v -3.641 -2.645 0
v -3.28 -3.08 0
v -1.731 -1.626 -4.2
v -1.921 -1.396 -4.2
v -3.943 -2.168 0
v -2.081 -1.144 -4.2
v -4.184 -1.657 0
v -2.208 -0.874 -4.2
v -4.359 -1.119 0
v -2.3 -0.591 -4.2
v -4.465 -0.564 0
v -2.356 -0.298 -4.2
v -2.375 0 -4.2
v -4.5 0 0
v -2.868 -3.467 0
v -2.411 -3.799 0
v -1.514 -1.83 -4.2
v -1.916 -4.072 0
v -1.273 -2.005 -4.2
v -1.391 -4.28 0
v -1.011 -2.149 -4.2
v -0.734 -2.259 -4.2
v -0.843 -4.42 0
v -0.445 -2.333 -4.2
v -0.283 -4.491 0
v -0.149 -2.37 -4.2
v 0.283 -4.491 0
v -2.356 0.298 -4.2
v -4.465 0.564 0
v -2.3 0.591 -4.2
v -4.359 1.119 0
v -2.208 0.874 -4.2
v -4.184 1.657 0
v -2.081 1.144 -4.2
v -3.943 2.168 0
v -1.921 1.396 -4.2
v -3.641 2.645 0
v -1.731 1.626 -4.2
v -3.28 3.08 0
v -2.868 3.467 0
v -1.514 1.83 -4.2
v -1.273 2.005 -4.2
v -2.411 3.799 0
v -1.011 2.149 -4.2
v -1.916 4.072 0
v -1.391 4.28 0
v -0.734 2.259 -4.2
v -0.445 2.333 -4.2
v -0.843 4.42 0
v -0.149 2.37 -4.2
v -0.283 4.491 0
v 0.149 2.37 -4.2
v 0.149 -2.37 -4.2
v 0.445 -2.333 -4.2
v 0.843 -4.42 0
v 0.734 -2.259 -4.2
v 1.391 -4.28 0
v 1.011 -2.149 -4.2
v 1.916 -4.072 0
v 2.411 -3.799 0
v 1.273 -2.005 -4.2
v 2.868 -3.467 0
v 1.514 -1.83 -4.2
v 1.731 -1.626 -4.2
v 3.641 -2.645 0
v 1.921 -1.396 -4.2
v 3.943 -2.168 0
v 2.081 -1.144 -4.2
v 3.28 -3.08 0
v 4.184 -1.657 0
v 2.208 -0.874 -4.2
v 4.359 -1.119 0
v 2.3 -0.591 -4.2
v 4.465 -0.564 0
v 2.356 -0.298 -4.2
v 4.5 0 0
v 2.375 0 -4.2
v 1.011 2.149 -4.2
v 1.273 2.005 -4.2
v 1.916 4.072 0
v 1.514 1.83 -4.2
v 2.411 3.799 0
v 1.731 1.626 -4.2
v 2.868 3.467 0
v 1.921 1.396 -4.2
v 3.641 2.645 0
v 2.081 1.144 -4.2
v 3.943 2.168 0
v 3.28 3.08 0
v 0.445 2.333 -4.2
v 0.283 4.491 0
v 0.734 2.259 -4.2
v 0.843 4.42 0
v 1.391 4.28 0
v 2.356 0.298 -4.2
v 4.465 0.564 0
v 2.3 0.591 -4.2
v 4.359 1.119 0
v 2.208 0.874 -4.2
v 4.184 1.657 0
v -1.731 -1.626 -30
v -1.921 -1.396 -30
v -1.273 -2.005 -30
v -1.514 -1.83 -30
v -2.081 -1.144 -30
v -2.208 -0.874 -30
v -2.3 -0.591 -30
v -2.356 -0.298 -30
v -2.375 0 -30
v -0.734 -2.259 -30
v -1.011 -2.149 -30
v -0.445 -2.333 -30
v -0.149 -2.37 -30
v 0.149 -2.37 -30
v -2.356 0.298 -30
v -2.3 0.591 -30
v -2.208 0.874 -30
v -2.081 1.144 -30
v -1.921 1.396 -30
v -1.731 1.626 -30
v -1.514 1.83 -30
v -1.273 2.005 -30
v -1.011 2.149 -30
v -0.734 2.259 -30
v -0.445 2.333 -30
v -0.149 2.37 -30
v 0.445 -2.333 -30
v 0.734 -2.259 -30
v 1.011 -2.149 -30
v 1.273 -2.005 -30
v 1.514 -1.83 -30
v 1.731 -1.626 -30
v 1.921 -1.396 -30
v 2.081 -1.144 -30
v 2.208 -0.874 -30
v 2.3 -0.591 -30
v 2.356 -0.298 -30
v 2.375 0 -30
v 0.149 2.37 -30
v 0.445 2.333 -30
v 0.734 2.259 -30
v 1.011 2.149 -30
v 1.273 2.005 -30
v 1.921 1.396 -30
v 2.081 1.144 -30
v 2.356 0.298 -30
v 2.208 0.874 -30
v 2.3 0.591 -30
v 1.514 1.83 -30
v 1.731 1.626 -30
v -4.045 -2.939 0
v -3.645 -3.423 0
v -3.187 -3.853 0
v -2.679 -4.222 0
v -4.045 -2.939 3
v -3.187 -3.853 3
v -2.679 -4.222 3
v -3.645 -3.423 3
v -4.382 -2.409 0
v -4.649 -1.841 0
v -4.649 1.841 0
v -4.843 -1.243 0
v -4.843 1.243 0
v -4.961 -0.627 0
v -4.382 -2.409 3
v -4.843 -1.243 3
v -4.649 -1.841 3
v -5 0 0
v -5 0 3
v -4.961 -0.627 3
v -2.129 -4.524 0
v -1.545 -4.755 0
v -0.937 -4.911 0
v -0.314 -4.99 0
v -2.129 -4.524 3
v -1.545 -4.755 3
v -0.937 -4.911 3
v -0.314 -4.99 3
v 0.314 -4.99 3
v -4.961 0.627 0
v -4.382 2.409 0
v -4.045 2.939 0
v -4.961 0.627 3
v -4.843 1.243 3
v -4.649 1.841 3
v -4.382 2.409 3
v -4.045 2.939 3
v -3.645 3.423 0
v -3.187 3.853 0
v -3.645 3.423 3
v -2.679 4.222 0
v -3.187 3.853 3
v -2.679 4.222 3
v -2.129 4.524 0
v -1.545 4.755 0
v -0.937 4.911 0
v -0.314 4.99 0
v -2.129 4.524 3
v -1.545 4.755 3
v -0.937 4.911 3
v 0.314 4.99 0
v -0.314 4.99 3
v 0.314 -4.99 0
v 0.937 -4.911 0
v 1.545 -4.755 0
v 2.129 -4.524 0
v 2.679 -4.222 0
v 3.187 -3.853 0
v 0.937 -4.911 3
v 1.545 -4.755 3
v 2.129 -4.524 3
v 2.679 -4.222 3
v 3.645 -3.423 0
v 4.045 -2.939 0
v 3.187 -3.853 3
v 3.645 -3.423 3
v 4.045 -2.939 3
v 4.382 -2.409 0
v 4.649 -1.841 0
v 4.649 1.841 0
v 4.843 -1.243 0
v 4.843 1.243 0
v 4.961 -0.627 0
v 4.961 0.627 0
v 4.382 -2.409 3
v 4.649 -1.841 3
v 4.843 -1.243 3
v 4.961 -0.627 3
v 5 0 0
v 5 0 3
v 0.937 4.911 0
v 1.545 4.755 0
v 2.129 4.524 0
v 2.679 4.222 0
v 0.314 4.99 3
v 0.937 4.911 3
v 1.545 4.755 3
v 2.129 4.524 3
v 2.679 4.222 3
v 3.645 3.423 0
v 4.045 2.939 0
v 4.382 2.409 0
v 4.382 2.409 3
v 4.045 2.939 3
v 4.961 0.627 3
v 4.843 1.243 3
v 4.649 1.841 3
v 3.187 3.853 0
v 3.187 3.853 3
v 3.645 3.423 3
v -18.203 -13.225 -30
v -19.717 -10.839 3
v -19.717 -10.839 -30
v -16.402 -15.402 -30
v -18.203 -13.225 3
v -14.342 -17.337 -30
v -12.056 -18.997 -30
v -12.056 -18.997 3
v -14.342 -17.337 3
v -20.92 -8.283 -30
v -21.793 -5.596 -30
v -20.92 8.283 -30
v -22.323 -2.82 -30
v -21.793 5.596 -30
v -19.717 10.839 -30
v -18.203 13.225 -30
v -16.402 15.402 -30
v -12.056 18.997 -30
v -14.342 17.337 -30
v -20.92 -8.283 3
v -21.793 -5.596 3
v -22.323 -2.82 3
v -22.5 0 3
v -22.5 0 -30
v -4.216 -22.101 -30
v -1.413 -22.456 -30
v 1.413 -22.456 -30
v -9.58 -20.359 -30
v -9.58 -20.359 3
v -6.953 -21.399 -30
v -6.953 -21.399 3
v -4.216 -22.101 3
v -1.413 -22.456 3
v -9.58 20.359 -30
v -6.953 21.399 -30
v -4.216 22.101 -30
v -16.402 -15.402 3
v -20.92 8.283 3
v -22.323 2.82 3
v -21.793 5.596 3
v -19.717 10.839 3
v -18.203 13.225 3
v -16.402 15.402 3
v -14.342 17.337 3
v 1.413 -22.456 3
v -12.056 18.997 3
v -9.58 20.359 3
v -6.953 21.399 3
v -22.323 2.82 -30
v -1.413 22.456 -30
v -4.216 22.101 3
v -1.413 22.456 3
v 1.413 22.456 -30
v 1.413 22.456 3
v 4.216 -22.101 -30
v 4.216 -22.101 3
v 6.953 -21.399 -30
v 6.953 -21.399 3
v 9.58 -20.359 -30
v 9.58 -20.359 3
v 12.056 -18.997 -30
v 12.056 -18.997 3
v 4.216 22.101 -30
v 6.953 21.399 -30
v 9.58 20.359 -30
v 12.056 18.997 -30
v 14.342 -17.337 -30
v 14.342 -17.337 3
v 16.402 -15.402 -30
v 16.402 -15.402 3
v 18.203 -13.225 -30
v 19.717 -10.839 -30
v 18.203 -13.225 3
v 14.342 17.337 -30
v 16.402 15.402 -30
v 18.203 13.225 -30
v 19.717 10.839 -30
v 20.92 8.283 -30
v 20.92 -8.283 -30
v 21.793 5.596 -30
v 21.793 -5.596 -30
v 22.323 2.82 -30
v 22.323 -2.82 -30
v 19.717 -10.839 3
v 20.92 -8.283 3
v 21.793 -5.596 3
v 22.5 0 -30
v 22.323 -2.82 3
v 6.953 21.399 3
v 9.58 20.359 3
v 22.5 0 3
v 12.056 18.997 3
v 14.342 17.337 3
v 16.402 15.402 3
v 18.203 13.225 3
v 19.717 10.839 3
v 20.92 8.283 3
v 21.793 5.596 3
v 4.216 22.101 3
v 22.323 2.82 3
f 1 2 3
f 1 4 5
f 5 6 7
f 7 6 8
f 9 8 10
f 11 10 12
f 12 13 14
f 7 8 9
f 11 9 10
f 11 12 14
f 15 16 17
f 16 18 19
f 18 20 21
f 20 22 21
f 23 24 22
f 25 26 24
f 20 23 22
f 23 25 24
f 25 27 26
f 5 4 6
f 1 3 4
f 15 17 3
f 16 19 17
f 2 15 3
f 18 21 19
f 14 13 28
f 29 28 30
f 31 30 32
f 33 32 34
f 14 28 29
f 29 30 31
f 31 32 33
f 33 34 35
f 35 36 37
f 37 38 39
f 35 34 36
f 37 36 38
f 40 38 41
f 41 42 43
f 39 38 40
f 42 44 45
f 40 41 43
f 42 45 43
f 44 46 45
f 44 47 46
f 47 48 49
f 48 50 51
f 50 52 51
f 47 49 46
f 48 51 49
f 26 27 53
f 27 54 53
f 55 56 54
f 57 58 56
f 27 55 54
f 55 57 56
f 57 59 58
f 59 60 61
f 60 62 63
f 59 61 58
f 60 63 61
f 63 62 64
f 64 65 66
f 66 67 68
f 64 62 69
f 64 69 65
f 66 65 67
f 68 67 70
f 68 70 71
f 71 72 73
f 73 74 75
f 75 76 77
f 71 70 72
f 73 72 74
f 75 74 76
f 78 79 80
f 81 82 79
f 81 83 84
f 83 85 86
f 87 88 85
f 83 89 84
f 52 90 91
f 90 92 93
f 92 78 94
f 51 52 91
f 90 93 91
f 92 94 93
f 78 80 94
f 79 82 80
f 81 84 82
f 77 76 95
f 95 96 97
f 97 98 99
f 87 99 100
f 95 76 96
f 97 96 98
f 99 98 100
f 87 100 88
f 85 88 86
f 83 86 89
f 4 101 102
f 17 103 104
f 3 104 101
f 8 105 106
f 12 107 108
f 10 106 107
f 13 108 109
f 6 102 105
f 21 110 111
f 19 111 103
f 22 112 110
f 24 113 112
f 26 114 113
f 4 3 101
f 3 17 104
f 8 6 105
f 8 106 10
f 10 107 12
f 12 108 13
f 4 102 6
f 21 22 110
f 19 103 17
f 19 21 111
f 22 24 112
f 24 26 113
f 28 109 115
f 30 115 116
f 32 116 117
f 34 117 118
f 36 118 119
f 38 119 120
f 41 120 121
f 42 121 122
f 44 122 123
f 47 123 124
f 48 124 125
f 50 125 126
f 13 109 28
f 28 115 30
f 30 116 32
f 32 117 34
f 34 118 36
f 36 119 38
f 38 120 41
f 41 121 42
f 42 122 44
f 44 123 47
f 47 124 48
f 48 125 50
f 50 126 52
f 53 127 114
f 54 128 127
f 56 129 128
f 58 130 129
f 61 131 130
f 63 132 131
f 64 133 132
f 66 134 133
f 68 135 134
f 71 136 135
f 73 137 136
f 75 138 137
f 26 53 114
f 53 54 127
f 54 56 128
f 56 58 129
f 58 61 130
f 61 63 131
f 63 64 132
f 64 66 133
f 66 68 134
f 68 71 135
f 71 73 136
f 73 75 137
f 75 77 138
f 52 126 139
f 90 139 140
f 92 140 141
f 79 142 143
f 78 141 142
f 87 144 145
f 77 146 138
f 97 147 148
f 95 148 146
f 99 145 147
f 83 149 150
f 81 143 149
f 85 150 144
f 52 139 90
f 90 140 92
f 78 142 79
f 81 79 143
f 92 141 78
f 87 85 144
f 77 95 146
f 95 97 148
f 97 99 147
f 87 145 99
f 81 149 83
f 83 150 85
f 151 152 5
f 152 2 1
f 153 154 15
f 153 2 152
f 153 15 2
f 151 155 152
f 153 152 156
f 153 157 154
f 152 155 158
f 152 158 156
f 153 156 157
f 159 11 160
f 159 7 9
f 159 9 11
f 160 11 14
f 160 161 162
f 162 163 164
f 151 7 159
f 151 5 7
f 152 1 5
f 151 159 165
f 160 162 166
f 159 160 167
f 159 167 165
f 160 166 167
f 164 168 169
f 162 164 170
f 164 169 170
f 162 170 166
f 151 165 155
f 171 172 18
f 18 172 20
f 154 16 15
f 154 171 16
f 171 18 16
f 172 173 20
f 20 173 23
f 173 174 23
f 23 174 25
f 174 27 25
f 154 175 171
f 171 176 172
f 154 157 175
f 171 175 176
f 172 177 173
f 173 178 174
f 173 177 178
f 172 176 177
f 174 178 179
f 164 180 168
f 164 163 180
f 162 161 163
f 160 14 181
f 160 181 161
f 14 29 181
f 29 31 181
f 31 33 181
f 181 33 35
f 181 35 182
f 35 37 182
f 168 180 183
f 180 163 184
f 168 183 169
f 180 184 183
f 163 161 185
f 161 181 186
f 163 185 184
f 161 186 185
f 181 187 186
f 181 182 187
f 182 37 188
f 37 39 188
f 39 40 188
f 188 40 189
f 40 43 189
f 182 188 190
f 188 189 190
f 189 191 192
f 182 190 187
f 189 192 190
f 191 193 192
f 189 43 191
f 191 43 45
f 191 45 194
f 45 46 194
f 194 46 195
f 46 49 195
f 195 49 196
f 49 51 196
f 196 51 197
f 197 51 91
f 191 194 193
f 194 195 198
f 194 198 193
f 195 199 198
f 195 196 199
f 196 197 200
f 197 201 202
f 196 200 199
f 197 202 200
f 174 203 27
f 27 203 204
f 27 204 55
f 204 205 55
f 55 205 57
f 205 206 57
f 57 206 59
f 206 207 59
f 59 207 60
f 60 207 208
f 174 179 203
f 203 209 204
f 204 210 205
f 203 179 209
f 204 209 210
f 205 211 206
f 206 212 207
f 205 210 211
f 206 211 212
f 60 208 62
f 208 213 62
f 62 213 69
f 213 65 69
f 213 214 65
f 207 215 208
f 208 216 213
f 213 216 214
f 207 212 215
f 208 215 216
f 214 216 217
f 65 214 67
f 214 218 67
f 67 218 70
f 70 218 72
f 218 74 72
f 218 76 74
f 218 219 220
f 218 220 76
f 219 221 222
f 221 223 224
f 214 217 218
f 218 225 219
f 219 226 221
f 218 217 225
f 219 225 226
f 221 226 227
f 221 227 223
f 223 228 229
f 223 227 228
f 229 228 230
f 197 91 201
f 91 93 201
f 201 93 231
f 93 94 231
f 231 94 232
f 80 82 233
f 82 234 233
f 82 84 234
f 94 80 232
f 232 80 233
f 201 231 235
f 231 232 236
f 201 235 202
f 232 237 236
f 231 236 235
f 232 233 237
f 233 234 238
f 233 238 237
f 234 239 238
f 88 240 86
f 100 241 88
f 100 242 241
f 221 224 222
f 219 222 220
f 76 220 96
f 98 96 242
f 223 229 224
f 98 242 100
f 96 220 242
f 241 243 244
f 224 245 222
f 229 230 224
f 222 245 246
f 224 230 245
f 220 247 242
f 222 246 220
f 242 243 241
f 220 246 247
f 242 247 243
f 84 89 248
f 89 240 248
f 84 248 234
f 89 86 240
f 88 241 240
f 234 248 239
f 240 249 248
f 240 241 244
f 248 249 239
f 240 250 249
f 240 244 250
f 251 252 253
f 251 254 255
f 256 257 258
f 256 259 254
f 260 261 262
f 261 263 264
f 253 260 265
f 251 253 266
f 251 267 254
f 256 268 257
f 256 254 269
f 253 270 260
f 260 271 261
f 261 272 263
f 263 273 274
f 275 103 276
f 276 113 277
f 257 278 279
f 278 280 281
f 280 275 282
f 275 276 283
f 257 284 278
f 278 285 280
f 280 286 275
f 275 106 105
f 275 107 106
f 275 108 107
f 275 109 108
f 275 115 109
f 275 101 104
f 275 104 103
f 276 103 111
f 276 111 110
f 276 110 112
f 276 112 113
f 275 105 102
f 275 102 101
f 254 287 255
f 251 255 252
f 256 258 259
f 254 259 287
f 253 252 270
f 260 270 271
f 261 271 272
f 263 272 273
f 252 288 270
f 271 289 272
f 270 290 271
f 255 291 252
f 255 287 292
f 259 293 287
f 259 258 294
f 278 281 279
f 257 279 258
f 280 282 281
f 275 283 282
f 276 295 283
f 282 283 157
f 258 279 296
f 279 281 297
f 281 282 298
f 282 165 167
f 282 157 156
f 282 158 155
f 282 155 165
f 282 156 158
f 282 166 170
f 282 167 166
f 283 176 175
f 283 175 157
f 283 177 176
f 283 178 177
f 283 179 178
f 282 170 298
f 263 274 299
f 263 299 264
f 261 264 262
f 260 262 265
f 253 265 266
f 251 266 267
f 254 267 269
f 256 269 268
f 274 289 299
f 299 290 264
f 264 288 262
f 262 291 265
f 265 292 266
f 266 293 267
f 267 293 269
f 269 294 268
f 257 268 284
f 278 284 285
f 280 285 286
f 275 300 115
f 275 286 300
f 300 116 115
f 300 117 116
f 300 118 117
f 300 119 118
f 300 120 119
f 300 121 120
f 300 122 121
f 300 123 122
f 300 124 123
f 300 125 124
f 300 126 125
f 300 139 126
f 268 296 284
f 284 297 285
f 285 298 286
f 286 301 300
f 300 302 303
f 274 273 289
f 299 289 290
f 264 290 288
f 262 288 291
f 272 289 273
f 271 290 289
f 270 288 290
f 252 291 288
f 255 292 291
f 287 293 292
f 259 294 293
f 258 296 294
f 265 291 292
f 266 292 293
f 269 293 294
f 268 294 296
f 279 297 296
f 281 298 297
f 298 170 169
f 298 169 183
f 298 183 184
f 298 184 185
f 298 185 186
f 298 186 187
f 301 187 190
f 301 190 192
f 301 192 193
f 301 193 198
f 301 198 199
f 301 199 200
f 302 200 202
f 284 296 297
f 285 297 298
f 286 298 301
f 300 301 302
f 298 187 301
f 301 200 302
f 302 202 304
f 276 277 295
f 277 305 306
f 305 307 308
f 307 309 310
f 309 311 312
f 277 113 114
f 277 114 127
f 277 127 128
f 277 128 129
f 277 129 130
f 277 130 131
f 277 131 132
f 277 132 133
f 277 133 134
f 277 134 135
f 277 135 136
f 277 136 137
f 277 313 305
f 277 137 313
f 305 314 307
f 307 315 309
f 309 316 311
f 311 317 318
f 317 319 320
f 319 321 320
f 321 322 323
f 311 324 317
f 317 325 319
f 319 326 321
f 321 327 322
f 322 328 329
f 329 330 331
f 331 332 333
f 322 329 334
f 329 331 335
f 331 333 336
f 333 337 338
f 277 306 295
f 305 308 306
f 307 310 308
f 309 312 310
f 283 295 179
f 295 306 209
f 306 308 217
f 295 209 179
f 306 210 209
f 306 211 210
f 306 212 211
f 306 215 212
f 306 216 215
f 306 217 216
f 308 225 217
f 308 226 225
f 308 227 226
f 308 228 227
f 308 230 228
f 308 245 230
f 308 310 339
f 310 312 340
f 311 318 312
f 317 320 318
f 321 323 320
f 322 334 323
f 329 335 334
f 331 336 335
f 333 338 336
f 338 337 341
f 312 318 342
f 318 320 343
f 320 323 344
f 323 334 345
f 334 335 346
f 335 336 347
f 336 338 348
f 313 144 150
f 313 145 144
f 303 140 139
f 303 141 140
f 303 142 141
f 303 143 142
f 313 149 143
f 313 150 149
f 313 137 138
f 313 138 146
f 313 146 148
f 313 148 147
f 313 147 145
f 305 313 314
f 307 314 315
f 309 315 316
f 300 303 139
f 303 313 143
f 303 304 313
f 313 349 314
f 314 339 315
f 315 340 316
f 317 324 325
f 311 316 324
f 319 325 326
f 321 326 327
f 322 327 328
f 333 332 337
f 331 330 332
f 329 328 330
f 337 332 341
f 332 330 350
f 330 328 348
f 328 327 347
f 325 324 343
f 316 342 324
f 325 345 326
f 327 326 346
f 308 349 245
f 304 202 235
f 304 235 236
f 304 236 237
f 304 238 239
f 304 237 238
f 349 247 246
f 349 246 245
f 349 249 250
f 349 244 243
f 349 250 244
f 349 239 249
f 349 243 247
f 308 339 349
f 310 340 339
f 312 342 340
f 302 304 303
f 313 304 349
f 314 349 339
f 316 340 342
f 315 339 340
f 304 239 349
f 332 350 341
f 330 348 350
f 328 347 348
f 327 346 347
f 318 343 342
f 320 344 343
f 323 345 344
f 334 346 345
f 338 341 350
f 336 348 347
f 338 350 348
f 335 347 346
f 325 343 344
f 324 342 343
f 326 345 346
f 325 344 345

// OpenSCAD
$fn = 50;

difference() {
	union() {
		translate(v = [0, 0, -30.0]) {
			cylinder(h = 33, r = 22.5);
		}
	}
	union() {
		translate(v = [0, 0, 0]) {
			rotate(a = [0, 0, 0]) {
				difference() {
					union() {
						translate(v = [0, 0, -33.0]) {
							cylinder(h = 33, r = 2.25);
						}
						translate(v = [0, 0, -4.2]) {
							cylinder(h = 4.2, r1 = 2.375, r2 = 4.5);
						}
						translate(v = [0, 0, -33.0]) {
							cylinder(h = 33, r = 2.375);
						}
						translate(v = [0, 0, -33.0]) {
							cylinder(h = 33, r = 2.25);
						}
					}
					union();
				}
			}
		}
		#cylinder(h = 3, r = 5.0);
	}
}
